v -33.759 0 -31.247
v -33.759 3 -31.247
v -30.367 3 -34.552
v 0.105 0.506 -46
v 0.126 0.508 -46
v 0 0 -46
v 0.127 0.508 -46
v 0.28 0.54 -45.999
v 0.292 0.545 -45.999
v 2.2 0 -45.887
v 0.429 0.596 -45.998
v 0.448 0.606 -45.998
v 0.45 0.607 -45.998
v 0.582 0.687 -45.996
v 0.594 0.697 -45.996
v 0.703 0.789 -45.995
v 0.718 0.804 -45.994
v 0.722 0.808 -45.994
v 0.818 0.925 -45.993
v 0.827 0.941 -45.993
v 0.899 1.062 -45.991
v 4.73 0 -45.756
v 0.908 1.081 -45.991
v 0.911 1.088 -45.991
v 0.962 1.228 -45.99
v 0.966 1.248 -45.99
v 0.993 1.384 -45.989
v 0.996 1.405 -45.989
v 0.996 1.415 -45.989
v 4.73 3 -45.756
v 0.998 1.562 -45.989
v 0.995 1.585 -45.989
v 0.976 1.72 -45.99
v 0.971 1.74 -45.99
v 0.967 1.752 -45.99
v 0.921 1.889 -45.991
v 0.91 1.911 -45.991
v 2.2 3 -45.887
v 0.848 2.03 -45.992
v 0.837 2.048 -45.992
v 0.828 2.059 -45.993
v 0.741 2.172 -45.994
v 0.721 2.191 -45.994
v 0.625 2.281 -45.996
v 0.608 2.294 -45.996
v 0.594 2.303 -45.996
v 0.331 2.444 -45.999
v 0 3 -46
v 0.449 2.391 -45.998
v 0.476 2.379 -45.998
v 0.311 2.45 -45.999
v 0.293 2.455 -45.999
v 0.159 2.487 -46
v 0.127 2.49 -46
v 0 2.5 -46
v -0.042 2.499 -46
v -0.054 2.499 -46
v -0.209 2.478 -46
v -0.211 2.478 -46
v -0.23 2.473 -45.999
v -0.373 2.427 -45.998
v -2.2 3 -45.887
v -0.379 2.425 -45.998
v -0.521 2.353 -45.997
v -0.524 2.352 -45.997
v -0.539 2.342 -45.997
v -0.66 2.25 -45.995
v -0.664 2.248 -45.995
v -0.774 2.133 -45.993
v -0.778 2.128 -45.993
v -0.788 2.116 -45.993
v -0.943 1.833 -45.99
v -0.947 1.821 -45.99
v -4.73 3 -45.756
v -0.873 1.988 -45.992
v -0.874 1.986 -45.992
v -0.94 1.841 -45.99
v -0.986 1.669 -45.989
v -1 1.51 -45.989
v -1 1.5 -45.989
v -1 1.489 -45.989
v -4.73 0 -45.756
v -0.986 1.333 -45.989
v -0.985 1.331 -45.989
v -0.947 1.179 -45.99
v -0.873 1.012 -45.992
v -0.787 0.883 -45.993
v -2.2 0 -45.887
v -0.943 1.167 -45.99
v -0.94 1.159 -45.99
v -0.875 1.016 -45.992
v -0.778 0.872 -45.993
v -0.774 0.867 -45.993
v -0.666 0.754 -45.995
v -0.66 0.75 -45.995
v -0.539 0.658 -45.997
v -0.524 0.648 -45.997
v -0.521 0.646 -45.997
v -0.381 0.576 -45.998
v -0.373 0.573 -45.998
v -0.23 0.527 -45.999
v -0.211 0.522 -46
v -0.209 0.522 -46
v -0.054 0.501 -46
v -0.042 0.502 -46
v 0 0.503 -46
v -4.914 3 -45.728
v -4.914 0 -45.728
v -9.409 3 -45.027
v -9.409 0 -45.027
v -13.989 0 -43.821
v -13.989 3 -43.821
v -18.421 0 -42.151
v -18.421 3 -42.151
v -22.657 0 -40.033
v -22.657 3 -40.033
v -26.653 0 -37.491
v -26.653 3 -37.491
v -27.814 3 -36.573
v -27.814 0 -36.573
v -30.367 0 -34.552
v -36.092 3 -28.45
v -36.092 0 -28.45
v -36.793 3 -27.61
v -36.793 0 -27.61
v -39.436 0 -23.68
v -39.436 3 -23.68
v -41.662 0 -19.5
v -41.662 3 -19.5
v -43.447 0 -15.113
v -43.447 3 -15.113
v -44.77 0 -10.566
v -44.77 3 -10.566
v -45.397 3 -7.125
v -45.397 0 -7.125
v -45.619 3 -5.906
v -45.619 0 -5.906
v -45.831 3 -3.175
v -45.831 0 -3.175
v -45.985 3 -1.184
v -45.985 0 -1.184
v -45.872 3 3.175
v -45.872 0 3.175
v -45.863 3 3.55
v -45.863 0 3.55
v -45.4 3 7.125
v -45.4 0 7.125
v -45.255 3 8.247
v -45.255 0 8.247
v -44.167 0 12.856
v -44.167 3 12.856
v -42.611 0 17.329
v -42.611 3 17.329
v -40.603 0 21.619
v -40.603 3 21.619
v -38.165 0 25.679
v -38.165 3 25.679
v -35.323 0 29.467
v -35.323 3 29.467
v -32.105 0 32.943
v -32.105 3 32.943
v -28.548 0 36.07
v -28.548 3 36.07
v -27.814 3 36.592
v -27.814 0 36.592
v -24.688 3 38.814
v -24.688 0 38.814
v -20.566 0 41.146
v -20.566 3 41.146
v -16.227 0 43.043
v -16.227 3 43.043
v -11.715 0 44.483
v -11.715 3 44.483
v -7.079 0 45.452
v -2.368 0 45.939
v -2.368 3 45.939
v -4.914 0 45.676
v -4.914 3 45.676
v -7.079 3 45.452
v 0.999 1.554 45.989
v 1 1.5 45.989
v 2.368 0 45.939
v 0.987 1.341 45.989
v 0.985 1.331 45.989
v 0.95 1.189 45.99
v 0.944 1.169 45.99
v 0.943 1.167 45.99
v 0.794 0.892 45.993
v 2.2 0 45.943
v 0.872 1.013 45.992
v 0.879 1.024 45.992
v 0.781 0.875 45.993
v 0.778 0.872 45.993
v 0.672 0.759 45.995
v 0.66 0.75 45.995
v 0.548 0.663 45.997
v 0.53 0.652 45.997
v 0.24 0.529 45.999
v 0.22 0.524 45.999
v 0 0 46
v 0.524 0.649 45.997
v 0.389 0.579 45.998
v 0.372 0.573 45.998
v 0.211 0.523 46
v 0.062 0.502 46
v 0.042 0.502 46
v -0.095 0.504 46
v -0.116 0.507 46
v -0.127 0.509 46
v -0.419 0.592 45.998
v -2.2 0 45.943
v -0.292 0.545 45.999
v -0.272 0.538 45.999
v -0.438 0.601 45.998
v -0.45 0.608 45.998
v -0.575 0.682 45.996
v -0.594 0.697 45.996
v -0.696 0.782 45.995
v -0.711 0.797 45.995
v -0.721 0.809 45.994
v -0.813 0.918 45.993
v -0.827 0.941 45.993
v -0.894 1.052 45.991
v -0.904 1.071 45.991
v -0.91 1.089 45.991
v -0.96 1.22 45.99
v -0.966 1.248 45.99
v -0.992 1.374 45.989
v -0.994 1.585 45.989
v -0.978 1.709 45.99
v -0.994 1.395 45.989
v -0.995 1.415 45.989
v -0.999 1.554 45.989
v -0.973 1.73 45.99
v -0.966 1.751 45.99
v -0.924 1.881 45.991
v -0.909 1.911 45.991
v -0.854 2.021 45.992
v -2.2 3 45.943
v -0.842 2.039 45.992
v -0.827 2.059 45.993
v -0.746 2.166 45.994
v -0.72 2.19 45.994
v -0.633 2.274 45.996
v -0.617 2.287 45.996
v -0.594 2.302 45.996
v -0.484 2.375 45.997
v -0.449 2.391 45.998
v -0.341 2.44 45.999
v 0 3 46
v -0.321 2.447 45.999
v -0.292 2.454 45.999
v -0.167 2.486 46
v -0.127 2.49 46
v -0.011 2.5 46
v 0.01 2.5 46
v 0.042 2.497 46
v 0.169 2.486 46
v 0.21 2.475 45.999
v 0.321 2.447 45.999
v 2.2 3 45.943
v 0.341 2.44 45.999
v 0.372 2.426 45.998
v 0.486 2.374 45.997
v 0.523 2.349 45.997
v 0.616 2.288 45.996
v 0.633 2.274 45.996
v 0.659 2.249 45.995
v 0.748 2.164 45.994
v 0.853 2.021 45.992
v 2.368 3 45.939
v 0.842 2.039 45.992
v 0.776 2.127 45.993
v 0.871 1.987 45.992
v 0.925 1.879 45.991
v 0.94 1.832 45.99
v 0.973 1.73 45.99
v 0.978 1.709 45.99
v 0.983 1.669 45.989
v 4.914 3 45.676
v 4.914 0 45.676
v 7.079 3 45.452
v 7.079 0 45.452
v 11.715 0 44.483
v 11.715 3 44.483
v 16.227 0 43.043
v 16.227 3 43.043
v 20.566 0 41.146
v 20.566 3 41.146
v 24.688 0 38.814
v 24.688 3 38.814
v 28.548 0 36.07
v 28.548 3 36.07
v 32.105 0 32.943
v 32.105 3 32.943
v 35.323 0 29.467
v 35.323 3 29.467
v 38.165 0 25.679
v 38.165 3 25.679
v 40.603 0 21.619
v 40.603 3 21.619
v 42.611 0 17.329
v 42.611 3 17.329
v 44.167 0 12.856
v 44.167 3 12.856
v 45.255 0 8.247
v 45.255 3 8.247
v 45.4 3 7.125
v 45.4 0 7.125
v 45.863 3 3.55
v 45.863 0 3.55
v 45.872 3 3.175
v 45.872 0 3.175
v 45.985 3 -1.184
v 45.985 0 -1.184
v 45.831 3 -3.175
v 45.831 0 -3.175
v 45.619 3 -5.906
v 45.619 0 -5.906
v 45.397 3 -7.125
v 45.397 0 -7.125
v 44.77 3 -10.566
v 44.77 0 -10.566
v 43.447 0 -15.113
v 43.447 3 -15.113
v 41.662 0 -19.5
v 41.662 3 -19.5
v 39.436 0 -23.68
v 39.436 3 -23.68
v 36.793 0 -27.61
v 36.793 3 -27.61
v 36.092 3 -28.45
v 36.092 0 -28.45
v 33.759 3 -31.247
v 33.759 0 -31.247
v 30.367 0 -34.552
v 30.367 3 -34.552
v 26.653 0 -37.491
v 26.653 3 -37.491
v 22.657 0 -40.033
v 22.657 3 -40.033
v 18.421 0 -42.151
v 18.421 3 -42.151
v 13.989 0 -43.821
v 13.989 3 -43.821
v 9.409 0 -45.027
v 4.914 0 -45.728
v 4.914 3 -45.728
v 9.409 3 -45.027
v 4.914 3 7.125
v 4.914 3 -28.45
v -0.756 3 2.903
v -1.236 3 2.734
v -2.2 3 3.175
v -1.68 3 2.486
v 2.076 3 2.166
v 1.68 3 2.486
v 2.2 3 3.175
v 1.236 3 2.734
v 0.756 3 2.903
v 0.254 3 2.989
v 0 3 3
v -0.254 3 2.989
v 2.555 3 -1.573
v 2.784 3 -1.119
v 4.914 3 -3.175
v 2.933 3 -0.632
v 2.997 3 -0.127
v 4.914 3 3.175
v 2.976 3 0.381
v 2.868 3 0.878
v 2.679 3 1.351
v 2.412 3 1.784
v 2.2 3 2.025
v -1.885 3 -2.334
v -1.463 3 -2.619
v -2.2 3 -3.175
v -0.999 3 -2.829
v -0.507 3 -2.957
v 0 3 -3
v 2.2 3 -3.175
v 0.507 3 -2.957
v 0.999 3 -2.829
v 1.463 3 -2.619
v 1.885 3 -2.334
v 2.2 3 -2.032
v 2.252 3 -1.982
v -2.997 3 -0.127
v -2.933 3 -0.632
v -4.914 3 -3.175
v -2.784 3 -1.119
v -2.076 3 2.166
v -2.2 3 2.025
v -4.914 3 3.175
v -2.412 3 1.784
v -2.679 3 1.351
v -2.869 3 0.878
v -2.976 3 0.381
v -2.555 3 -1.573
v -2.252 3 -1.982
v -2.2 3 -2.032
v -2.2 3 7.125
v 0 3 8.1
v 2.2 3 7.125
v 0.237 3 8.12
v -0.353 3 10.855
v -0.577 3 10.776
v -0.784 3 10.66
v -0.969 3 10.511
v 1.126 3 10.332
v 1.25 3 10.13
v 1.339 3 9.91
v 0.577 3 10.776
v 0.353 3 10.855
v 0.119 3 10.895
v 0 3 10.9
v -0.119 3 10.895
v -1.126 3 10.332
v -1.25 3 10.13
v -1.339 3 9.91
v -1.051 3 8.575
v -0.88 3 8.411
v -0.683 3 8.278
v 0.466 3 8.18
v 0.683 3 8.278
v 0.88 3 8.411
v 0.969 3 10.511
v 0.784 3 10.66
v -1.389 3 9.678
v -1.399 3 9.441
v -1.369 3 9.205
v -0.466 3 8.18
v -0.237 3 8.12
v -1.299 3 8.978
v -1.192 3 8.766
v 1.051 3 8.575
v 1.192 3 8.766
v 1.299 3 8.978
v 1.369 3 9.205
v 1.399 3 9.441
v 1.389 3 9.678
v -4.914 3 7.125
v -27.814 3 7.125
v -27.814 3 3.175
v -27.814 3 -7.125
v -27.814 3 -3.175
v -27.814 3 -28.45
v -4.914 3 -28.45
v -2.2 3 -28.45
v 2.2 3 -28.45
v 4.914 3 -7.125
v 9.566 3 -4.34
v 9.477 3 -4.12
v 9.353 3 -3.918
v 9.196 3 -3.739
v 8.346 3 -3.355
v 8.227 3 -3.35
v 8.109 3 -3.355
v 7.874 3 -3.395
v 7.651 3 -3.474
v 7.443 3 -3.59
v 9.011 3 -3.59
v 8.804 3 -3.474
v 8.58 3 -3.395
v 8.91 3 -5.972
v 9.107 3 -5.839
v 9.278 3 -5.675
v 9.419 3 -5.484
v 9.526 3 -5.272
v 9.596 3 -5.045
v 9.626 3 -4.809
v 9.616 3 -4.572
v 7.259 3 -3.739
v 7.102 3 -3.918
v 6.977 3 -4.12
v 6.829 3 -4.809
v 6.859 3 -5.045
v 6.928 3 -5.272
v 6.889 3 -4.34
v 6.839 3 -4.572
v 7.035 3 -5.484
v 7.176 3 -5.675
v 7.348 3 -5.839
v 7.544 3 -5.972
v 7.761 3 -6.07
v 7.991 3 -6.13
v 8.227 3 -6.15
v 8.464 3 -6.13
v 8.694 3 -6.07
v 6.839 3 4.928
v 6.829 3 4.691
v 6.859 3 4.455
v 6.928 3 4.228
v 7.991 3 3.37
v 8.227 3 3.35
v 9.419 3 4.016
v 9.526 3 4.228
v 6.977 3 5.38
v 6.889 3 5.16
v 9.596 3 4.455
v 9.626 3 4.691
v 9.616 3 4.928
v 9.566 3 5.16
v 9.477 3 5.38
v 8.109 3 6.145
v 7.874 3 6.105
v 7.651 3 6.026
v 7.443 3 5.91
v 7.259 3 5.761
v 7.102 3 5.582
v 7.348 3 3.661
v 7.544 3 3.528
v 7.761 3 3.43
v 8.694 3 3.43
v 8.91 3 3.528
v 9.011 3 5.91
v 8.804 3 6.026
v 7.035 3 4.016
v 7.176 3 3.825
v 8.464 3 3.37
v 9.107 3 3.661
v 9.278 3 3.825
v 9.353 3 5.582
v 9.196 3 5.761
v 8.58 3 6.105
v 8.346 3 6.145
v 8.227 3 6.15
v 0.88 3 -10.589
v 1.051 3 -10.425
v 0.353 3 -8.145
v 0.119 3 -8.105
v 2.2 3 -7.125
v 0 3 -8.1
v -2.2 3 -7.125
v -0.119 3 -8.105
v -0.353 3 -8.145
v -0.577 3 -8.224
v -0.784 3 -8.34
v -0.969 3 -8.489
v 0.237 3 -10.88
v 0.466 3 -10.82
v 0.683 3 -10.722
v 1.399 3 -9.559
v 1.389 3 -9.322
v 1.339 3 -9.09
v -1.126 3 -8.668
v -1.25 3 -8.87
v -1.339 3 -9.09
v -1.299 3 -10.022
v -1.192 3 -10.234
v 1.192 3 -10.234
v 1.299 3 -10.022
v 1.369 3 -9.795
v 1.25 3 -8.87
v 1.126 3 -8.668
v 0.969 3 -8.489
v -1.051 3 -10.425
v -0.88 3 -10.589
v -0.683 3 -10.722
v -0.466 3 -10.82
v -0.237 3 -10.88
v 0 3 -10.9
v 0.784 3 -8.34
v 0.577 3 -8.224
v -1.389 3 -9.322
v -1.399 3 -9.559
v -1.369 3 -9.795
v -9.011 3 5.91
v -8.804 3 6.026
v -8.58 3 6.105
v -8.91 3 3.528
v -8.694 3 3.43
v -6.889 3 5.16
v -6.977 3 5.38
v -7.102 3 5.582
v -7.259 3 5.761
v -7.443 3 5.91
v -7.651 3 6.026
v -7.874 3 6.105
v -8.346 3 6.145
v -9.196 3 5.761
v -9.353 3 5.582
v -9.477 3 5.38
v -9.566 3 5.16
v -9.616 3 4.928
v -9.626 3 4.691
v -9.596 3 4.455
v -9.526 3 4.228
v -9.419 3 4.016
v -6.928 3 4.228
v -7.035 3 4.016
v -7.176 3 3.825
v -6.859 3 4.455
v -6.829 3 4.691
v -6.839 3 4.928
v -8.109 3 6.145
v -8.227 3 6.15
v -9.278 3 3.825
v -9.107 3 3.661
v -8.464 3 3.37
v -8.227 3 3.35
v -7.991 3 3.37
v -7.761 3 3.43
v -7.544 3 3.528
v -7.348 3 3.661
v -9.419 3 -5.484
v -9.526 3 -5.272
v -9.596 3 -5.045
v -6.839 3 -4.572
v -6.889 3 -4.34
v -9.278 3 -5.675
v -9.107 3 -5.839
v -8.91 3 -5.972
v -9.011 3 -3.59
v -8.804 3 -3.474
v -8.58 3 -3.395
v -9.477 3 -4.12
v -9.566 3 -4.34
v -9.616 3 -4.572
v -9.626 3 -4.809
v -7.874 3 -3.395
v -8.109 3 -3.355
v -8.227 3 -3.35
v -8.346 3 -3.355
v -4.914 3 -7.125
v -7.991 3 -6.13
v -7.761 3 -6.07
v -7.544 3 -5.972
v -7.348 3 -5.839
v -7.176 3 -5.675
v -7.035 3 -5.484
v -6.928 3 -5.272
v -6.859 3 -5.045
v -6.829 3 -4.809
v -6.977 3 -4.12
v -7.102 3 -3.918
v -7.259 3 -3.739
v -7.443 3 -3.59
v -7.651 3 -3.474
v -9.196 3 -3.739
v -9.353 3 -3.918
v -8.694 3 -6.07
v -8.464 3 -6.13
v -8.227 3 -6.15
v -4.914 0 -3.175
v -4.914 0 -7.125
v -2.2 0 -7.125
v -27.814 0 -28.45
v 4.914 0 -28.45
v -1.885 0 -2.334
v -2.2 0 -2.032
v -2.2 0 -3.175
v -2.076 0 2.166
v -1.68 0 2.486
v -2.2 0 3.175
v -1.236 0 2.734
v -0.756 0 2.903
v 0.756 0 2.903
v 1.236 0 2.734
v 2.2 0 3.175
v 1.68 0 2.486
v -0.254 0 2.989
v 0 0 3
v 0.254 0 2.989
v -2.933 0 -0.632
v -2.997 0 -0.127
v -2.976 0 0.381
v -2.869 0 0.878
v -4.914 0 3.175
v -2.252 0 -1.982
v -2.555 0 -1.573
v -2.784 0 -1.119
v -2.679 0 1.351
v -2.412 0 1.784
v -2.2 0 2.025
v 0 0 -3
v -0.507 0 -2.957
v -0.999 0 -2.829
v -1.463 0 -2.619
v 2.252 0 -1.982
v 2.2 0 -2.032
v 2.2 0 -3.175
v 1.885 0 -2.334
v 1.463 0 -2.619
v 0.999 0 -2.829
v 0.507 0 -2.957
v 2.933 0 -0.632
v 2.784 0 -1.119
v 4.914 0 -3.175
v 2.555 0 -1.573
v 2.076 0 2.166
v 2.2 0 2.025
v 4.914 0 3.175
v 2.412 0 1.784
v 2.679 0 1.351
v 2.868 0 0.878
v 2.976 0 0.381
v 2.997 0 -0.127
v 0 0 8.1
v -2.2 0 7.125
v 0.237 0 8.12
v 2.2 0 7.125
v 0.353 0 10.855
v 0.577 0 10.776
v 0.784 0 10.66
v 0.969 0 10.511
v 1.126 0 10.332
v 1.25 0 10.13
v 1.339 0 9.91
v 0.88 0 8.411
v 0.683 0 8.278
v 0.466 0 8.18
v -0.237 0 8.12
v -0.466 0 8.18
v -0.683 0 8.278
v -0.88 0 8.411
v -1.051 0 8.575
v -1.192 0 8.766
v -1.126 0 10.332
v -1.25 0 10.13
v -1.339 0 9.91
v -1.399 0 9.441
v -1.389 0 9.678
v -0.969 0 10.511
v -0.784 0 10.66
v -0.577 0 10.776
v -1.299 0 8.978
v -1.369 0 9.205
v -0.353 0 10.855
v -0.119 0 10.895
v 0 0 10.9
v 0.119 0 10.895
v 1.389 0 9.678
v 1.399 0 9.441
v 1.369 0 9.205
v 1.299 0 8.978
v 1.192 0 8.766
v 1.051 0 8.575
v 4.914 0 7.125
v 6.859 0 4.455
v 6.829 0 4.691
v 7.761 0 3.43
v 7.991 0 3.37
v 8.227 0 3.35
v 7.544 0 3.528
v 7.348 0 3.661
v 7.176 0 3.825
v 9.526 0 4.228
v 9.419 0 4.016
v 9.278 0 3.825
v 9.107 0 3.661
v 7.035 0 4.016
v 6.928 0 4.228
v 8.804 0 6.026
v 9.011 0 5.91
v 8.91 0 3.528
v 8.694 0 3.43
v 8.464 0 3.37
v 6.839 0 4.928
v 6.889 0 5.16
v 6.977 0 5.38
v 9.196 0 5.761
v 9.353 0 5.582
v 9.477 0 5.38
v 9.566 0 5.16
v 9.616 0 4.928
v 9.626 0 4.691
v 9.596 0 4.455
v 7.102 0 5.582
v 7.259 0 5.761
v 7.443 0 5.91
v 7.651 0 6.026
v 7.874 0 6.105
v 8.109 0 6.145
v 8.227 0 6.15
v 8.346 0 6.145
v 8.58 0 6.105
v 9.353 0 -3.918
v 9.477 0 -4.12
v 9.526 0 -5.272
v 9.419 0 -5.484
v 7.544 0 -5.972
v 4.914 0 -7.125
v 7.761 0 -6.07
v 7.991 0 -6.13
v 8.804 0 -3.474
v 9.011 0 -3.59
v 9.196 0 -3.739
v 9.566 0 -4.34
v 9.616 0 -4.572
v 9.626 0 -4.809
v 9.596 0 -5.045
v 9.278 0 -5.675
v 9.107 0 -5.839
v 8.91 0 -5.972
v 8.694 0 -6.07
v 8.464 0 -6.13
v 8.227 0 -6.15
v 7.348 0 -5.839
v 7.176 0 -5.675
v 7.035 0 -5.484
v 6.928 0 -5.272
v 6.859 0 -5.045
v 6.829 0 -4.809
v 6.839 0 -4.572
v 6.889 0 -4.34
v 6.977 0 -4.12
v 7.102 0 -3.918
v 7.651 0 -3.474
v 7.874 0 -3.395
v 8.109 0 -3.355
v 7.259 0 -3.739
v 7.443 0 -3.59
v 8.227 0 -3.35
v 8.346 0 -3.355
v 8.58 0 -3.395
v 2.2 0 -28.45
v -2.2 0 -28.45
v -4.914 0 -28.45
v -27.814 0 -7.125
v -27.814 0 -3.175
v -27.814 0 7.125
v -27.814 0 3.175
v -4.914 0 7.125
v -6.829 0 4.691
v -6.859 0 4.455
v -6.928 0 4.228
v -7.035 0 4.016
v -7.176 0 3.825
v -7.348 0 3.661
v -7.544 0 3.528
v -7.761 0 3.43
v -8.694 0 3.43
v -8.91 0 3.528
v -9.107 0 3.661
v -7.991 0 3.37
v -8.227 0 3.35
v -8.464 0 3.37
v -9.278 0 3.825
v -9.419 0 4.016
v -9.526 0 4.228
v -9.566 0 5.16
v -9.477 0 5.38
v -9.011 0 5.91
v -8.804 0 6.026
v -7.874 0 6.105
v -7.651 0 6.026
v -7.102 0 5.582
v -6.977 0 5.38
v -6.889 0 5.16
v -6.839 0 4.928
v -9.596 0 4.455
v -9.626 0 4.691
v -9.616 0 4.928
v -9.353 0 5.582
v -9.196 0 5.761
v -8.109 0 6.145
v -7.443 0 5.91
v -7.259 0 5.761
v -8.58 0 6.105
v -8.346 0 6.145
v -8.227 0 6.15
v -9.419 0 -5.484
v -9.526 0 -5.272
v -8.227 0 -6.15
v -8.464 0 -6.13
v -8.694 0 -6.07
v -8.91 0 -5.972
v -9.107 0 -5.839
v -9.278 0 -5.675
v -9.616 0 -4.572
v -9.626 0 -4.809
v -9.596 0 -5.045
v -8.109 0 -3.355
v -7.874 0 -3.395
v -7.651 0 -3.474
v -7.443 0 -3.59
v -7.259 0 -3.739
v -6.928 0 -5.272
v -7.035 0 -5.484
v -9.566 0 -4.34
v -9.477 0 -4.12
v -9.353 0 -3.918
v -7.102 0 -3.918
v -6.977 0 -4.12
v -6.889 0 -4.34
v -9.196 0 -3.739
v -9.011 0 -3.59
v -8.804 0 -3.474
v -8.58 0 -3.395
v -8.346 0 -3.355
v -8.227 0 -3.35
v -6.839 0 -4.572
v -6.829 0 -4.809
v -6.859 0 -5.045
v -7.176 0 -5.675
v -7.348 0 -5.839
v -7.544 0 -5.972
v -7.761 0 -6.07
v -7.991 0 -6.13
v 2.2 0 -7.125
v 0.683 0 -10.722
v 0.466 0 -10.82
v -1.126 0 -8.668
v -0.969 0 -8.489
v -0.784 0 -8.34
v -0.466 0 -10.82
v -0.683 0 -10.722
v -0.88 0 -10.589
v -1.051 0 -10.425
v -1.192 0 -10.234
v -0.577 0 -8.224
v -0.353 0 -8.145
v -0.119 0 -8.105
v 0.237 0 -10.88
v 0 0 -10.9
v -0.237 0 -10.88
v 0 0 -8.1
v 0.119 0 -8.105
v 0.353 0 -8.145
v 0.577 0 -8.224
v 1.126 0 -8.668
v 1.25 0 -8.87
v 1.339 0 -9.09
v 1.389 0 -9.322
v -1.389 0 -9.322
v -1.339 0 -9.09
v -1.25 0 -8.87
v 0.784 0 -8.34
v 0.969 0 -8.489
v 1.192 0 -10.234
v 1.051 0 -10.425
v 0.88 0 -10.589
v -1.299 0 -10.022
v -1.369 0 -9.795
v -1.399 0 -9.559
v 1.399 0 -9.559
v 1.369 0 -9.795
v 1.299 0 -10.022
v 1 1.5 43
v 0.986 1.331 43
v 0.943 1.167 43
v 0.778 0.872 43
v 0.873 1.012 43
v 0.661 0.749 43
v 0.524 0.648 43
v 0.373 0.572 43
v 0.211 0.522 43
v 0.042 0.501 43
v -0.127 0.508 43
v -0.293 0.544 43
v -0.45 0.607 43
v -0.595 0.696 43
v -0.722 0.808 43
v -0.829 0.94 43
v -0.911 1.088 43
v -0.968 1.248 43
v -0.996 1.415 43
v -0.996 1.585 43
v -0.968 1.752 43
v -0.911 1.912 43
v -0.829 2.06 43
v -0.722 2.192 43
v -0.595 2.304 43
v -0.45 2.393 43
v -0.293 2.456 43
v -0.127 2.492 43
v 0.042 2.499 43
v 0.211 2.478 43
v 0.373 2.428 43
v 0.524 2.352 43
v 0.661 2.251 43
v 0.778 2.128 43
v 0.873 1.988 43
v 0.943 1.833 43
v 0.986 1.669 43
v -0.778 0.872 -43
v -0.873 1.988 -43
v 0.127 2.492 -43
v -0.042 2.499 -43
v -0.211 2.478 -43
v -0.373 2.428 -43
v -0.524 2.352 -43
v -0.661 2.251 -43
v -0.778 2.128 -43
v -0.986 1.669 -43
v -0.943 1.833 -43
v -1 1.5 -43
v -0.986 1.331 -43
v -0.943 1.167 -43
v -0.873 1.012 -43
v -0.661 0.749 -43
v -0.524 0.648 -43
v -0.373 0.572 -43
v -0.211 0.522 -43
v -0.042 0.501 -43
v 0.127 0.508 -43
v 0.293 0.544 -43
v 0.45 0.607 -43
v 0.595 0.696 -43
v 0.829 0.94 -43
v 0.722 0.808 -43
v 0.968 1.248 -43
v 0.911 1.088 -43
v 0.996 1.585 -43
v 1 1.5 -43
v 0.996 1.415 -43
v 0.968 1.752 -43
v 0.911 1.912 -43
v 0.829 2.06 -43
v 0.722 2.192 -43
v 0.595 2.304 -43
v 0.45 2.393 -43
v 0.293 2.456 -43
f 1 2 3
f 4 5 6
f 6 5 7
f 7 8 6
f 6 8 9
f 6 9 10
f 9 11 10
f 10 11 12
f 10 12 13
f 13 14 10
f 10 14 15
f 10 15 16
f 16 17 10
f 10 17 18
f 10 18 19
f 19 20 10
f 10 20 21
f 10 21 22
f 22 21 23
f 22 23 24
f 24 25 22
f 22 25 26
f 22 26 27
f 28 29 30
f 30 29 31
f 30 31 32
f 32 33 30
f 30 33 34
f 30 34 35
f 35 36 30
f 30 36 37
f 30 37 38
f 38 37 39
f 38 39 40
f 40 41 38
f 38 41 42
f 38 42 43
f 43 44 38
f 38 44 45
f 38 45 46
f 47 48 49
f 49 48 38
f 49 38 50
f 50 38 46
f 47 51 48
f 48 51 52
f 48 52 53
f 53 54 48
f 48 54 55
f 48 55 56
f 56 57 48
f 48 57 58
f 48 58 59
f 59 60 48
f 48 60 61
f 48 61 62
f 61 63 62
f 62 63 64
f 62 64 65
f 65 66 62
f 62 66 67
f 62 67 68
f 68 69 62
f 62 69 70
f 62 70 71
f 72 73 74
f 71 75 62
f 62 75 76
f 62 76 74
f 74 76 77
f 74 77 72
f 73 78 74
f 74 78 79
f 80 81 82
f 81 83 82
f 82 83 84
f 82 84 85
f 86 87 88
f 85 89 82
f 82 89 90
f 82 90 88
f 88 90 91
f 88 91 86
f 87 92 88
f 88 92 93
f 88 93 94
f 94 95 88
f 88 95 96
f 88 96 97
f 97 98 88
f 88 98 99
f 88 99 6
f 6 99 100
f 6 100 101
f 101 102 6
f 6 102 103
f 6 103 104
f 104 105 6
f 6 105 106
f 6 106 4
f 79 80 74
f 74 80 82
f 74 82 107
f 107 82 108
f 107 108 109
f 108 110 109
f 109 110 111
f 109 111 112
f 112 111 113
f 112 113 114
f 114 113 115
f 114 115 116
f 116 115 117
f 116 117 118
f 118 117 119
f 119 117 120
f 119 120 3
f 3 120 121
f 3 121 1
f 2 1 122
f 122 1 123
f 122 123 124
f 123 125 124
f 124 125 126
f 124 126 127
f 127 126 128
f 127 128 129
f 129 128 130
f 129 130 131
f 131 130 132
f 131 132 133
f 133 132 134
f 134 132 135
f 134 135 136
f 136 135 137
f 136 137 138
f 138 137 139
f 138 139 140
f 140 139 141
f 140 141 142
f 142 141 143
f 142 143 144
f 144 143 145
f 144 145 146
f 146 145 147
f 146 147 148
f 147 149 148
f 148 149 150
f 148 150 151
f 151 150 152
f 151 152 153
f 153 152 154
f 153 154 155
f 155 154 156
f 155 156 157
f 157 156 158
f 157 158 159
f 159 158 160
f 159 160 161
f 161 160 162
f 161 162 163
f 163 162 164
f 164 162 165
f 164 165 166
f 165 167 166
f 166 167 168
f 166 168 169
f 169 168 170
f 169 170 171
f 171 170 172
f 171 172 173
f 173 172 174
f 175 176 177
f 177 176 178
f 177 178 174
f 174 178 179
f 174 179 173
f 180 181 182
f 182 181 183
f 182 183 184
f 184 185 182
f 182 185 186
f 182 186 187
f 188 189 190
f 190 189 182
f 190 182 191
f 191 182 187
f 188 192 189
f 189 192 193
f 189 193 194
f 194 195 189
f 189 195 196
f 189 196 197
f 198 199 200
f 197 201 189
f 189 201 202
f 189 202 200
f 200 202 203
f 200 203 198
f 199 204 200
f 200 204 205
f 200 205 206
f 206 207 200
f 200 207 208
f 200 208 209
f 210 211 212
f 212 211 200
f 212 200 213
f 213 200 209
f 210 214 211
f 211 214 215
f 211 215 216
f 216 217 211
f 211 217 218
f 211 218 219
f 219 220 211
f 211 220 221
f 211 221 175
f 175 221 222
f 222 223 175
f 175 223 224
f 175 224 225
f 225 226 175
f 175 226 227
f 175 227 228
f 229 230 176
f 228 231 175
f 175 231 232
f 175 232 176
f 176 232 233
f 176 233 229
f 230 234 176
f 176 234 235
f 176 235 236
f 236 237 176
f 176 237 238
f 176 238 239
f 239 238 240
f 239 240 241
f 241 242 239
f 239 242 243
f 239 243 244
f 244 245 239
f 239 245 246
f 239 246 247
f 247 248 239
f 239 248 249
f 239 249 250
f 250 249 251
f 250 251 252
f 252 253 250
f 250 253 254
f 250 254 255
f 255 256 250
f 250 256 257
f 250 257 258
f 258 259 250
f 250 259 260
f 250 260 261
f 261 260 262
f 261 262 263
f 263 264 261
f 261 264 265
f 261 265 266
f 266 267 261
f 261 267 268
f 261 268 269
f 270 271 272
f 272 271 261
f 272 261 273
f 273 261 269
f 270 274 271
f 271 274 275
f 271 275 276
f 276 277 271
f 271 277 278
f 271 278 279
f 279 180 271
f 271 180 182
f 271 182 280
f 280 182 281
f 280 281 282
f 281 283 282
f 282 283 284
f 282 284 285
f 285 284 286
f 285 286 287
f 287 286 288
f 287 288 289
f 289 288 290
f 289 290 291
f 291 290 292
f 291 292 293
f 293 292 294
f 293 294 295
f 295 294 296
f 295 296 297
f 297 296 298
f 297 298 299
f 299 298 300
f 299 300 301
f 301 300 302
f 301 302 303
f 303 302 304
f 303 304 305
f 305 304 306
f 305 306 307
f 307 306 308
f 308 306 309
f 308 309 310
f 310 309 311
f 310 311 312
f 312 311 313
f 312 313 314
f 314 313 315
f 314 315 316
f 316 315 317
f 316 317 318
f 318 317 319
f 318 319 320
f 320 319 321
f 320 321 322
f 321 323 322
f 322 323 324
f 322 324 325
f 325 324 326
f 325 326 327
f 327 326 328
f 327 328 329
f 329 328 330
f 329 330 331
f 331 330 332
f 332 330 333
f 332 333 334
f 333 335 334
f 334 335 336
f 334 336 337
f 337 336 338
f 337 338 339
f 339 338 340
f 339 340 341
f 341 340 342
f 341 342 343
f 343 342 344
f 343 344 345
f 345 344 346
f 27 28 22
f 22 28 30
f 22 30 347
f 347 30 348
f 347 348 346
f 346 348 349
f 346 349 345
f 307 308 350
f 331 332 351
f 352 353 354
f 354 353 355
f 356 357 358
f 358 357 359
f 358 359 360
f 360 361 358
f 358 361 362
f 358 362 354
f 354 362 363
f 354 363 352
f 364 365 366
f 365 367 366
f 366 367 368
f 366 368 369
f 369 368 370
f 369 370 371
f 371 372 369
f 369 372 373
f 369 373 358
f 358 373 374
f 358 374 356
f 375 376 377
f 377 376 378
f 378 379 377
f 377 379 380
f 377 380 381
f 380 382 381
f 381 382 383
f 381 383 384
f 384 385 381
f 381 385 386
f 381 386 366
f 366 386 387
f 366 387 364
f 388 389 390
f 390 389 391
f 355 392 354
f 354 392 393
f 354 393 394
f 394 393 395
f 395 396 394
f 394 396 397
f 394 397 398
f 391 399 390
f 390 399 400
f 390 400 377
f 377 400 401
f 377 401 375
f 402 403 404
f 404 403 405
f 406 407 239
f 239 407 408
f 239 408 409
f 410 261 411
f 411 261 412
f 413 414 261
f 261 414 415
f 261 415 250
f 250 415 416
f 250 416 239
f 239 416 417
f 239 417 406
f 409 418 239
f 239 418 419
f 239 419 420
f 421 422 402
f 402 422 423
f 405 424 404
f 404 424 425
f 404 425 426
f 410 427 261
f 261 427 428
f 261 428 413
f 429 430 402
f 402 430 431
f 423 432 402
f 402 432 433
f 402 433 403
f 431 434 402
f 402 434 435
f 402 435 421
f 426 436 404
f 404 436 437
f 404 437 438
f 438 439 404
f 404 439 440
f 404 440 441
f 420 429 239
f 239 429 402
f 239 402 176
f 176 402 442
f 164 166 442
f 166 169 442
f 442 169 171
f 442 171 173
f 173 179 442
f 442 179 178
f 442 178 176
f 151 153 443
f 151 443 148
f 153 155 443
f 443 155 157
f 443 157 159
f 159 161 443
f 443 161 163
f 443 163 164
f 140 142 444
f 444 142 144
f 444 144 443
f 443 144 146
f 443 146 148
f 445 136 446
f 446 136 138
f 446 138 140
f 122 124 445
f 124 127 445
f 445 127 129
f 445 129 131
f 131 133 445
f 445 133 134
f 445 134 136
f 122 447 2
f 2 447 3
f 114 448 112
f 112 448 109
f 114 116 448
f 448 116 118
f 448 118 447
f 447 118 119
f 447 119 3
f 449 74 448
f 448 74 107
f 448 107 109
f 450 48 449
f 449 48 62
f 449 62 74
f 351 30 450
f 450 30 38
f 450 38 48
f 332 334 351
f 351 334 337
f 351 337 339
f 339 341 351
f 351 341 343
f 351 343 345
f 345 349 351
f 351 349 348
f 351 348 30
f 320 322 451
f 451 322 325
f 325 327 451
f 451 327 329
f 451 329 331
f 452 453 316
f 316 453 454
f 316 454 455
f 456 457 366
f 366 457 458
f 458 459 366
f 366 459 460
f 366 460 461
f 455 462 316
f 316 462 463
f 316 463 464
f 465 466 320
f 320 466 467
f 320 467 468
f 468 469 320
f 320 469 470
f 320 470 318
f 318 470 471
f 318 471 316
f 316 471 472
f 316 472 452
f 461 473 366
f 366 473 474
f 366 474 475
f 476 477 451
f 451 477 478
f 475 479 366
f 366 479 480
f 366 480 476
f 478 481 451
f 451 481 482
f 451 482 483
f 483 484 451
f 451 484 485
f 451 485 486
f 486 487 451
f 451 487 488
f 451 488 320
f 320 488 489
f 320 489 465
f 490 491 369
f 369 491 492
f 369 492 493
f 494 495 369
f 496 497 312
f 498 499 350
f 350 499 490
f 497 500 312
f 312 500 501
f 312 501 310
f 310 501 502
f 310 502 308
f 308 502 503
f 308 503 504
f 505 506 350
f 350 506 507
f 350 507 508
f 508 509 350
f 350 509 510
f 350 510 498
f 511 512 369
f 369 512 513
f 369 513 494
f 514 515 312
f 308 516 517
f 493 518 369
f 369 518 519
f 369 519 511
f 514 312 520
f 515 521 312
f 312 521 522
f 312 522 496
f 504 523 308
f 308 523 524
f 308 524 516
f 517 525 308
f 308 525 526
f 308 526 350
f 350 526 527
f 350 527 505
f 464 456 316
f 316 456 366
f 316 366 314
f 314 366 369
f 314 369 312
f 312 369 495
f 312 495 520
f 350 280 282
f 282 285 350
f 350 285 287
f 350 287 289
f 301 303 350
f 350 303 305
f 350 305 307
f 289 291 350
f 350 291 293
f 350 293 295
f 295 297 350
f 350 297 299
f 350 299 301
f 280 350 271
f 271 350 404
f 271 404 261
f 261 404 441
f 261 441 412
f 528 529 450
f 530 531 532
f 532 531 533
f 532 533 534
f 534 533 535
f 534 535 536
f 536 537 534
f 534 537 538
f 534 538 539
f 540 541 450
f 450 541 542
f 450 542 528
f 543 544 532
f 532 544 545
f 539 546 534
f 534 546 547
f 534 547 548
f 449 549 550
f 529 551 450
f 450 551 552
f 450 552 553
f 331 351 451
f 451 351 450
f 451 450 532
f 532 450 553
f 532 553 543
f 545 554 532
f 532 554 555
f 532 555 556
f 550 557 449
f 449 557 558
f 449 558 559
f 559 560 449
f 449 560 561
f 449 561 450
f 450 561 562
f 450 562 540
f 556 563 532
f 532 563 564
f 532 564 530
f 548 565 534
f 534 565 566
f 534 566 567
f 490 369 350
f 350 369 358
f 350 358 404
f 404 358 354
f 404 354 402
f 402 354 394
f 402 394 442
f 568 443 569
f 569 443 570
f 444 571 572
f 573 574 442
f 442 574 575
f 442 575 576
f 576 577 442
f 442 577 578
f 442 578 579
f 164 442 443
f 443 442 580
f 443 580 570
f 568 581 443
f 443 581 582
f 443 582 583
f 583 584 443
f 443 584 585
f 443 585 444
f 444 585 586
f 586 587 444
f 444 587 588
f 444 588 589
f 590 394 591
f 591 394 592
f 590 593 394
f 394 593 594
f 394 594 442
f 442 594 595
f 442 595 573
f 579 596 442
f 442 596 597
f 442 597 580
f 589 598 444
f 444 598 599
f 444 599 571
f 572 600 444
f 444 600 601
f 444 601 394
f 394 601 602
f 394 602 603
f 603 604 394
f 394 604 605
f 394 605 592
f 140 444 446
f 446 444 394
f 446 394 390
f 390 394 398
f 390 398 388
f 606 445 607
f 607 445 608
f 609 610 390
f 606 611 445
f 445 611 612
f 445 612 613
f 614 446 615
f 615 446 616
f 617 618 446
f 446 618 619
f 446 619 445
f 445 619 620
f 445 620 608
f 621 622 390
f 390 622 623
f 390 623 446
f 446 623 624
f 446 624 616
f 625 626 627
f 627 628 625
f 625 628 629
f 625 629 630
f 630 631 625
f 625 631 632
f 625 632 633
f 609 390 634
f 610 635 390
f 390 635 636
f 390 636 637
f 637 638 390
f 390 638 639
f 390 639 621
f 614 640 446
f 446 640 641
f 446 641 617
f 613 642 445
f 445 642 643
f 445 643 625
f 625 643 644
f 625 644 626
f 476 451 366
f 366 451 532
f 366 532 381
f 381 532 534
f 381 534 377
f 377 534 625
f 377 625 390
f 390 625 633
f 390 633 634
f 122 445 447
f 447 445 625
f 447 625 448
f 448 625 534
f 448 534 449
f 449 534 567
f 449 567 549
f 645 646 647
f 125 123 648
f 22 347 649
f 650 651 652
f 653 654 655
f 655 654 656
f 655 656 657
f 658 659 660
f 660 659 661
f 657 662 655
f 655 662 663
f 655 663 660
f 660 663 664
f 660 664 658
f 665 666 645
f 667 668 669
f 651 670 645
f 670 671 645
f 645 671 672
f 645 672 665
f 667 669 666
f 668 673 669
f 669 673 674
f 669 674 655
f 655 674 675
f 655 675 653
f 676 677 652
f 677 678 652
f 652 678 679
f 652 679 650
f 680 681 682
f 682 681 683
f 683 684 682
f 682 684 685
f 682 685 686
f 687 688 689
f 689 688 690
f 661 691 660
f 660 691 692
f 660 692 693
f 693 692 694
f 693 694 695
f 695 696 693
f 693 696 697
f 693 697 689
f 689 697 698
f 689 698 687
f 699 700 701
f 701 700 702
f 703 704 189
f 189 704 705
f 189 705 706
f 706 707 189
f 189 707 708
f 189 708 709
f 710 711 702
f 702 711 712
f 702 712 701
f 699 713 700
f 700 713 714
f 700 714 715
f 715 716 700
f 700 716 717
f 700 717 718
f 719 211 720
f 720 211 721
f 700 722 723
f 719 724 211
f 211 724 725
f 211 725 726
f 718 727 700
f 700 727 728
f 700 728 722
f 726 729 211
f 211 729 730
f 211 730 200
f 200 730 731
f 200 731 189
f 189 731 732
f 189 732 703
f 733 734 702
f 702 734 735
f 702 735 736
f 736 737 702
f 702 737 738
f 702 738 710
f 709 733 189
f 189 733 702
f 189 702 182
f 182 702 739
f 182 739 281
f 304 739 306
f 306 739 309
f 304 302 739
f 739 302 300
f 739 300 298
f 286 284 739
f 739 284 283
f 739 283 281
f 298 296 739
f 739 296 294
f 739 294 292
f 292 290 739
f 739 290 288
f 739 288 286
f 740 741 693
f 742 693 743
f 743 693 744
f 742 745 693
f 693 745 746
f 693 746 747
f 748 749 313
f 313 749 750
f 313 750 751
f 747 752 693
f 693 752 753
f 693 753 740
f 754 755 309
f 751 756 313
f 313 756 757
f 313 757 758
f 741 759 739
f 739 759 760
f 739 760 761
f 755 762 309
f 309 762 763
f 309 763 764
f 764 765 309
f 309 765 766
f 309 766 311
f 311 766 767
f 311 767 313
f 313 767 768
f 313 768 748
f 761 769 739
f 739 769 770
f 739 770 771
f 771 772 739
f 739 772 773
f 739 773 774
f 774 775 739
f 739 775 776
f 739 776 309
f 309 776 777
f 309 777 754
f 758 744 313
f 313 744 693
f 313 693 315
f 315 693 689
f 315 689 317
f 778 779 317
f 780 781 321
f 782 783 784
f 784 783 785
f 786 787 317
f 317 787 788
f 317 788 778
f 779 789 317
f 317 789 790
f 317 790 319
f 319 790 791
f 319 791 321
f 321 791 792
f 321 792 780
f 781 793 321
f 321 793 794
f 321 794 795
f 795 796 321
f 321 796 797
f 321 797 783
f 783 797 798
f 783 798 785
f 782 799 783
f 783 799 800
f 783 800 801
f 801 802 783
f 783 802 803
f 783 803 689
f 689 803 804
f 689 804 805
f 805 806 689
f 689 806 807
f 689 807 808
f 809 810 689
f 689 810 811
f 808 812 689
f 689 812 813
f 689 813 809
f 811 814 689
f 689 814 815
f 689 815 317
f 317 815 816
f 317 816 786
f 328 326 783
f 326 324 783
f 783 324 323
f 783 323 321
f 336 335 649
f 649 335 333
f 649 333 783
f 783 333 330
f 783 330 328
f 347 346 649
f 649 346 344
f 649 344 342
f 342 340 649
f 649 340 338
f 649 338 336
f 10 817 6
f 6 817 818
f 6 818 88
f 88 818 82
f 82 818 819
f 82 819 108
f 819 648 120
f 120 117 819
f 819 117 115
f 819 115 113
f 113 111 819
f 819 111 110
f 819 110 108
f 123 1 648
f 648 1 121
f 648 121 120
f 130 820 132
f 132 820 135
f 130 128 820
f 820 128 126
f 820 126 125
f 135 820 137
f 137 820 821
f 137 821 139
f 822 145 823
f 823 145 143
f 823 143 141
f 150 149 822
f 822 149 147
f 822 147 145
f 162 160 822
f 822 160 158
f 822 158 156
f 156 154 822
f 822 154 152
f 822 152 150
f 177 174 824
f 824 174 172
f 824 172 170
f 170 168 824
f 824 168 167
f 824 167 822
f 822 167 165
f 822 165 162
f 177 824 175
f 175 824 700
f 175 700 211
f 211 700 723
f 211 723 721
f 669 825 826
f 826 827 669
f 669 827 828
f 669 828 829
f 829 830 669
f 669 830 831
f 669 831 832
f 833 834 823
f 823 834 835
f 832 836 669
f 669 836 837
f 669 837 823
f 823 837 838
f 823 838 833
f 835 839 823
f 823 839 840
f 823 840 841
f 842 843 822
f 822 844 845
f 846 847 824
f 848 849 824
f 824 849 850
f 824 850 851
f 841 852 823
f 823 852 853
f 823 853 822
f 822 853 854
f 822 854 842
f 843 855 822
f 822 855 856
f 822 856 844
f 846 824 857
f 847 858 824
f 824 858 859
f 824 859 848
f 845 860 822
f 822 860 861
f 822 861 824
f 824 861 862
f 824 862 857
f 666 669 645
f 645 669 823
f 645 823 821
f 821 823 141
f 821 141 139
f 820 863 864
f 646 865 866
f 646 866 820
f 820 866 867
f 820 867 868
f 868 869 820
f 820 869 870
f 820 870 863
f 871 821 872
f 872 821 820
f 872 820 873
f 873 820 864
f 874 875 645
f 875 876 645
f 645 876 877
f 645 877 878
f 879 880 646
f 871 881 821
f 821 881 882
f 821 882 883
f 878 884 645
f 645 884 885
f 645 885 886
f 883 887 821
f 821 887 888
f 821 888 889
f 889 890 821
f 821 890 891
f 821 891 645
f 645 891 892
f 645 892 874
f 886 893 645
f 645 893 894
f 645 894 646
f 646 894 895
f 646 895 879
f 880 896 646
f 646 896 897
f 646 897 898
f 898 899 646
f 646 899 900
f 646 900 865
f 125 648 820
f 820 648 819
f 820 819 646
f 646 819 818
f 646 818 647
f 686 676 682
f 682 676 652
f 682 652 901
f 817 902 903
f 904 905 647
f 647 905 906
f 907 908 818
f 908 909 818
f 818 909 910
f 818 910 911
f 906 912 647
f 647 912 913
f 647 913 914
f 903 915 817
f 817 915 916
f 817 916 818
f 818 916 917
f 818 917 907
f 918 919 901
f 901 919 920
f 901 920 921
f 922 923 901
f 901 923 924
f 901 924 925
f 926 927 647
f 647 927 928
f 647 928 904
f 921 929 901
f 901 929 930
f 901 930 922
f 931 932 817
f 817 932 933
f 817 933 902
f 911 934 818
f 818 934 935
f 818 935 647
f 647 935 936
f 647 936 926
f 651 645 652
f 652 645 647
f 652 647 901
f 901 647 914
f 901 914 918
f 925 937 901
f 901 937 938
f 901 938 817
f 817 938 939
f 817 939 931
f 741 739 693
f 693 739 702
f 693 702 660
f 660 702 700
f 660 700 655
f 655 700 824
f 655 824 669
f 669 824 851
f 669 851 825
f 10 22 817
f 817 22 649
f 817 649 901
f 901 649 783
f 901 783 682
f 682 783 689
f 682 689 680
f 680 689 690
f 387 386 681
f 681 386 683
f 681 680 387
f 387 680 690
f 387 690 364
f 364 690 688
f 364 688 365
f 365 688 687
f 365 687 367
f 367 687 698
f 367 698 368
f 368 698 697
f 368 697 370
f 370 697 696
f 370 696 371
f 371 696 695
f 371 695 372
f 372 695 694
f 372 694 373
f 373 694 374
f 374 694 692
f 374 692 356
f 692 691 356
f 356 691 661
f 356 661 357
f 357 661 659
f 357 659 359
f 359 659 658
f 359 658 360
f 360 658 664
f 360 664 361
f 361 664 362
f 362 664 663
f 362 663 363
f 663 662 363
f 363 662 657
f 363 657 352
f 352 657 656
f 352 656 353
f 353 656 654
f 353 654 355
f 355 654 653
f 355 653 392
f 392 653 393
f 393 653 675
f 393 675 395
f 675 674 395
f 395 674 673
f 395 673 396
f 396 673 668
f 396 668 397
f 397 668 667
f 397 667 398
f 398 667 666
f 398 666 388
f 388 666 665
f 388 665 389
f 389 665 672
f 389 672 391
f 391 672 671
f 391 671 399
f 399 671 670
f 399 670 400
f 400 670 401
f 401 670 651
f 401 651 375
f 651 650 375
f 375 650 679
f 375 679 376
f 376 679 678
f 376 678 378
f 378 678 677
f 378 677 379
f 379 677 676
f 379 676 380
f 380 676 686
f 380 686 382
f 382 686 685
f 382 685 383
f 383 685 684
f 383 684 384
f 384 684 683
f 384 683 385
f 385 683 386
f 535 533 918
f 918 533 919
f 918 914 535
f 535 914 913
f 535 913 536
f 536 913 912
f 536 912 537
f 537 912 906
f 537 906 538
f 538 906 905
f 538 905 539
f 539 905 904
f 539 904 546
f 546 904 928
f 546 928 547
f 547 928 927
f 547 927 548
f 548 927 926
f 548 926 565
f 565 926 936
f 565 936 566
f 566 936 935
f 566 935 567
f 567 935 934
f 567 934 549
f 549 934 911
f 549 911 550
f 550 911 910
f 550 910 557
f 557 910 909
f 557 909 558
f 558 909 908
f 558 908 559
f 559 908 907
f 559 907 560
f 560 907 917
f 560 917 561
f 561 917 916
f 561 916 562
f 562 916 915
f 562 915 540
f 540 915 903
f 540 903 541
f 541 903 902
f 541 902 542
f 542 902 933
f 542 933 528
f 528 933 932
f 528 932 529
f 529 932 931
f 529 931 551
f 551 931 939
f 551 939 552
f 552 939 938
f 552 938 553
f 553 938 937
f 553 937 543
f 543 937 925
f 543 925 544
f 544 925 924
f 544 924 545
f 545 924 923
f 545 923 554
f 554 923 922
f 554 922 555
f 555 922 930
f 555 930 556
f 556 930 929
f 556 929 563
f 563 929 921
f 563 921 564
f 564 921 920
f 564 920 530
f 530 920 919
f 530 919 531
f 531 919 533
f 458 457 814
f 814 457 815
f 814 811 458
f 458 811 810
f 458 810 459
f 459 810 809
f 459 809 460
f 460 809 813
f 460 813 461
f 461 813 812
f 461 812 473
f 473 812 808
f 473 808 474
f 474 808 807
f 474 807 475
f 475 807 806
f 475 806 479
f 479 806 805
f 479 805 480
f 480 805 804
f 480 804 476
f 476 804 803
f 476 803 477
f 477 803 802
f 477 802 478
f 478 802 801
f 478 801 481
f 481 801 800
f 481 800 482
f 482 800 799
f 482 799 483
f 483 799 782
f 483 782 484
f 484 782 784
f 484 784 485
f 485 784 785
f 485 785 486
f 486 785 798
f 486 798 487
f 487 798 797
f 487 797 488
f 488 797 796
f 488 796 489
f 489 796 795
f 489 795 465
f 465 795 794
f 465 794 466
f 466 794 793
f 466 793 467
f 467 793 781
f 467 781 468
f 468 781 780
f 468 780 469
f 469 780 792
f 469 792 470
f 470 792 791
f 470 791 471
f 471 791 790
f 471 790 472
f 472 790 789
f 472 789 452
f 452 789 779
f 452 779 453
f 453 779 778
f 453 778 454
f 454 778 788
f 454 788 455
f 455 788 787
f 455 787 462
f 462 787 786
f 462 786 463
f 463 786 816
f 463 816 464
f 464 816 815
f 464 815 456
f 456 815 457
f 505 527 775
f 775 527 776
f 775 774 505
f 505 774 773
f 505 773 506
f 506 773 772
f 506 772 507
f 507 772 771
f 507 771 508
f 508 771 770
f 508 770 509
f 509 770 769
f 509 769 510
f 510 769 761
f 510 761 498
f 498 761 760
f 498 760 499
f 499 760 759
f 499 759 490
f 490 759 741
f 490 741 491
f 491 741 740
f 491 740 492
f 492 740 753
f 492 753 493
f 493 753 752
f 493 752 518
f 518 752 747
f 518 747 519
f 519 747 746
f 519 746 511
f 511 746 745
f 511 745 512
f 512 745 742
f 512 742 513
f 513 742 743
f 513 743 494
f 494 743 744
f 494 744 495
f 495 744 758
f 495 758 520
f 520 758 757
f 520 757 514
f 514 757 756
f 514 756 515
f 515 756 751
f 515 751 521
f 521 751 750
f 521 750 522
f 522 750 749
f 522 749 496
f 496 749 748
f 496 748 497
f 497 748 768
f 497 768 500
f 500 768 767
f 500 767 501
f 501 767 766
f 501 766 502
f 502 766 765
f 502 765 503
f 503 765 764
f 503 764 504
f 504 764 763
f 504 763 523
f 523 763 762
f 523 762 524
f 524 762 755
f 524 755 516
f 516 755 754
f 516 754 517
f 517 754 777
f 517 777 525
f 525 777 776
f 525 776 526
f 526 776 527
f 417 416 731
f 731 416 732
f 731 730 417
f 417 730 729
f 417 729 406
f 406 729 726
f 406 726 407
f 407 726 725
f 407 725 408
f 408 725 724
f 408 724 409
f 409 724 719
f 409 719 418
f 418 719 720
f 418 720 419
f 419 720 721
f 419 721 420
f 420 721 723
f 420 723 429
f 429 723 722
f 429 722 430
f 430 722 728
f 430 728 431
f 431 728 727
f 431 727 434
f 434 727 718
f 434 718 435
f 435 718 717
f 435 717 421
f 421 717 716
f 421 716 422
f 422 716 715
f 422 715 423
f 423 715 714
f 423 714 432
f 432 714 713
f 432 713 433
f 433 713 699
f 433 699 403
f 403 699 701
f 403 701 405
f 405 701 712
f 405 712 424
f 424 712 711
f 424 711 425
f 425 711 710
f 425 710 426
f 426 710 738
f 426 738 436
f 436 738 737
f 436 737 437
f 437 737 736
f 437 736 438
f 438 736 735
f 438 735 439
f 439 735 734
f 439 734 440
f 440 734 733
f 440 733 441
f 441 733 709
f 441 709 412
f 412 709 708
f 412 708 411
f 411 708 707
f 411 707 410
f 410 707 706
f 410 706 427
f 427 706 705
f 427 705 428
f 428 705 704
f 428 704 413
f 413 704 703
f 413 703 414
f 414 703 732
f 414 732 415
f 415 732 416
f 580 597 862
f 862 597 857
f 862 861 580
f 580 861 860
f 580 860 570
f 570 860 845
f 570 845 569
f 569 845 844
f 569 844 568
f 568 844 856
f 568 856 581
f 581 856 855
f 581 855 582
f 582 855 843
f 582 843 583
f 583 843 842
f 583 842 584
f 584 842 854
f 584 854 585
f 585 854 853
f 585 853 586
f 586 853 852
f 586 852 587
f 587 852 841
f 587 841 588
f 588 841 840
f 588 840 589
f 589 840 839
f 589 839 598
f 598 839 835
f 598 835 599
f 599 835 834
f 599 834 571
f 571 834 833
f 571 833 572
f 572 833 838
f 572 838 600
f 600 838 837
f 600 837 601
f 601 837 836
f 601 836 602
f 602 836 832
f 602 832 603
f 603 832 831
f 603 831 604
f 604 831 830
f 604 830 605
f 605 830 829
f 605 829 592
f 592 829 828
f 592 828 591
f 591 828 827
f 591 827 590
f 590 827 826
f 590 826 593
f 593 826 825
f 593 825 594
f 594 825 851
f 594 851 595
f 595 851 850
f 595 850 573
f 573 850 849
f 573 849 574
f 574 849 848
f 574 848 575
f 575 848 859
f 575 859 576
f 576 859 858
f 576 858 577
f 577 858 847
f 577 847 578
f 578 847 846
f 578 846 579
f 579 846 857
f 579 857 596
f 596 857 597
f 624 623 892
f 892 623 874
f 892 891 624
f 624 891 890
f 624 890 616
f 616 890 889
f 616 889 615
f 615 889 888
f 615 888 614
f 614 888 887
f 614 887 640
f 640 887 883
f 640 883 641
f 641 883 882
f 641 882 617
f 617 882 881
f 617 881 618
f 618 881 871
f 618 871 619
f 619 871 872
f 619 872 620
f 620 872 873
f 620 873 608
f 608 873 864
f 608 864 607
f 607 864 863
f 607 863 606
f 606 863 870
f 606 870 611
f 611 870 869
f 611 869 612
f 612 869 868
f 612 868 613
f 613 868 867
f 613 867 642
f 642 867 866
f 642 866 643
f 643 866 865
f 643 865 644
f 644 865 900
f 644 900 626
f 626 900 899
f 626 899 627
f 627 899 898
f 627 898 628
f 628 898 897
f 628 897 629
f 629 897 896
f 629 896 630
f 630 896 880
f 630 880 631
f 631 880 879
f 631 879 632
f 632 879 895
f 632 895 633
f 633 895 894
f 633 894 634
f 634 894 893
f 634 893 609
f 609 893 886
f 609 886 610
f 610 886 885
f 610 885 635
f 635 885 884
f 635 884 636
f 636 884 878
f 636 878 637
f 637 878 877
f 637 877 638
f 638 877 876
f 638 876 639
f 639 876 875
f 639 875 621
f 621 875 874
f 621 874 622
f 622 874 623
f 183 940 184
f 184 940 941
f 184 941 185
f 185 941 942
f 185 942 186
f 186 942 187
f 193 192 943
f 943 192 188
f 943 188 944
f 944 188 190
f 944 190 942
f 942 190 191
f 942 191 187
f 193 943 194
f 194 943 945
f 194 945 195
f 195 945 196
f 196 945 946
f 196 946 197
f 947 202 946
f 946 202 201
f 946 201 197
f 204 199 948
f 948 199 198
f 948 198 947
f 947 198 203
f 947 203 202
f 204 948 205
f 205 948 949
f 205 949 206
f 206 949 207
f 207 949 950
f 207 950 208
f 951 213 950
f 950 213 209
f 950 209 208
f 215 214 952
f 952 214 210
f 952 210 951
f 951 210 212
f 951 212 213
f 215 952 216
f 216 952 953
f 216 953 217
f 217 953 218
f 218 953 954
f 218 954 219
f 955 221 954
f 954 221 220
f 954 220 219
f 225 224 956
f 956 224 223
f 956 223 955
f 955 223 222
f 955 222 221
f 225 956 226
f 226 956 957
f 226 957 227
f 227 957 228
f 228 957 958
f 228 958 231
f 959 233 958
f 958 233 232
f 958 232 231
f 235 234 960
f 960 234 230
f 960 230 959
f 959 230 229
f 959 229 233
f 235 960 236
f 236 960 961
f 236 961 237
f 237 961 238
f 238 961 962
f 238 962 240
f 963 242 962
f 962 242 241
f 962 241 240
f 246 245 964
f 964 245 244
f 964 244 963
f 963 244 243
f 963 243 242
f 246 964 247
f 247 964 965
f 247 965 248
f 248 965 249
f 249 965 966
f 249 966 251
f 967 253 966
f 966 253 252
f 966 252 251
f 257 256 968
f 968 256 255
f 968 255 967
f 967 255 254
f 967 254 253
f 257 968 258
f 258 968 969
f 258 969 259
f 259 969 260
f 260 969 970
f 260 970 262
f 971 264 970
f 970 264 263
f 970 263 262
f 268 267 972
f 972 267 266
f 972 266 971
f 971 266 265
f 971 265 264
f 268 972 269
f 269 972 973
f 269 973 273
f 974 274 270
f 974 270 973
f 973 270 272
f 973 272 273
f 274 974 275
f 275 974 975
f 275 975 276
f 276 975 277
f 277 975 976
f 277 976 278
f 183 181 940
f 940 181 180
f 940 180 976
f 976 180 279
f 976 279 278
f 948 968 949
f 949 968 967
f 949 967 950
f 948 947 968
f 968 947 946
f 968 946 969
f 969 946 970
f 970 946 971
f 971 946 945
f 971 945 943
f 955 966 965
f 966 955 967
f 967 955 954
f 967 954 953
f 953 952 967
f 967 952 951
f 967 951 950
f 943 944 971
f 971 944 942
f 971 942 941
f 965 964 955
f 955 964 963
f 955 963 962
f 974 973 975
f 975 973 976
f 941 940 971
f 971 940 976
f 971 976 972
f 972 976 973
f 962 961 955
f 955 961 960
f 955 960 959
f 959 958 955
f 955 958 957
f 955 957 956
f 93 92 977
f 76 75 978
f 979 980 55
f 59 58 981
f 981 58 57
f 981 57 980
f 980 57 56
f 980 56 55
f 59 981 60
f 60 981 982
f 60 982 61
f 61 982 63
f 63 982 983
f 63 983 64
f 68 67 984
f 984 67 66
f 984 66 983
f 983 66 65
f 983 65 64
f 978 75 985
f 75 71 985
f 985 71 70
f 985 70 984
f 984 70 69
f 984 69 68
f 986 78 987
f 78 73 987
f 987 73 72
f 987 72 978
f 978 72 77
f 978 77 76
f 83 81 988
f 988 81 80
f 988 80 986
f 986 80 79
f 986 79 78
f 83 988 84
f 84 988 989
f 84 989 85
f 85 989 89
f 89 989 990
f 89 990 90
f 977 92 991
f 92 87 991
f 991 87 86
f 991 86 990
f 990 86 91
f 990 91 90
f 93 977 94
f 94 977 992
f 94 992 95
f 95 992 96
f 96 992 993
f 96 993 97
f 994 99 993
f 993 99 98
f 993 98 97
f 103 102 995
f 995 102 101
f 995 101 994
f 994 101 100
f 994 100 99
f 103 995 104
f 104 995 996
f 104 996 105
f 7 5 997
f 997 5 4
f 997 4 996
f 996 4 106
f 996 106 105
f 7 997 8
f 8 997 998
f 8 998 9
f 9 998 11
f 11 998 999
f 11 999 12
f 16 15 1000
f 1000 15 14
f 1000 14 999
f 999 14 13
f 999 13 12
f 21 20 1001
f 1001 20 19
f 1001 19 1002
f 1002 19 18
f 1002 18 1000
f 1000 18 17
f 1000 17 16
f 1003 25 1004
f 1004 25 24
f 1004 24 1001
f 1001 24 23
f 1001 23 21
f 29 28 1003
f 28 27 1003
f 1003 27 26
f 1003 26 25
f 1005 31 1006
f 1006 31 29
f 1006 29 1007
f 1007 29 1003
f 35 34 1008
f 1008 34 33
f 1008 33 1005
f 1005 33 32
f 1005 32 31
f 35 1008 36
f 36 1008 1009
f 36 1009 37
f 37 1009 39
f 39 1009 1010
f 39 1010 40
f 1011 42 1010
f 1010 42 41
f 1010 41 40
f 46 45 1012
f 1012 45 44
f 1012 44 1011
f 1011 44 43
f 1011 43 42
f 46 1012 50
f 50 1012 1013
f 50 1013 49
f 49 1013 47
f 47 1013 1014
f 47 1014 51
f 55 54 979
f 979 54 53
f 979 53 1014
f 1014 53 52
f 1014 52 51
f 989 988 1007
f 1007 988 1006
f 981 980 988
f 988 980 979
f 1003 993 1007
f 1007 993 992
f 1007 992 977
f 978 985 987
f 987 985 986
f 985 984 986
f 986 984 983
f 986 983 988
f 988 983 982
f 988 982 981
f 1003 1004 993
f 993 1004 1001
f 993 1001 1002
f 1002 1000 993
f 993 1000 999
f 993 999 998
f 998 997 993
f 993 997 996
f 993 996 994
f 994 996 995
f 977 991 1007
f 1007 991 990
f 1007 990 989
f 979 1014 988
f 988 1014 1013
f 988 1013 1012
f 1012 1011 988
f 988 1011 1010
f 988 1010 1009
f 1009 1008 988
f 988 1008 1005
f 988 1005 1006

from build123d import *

# Parameters (mm, degrees)
SKETCH1_R           = 46
SKETCH1_R_2         = 3
SKETCH1_R_3         = 1.4
BOSS_EXTRUDE1_DEPTH = 3
SKETCH5_R           = 1
CUT_EXTRUDE1_DEPTH  = 3
SKETCH6_R           = 1
CUT_EXTRUDE2_DEPTH  = 3


with BuildPart() as part:
    # Sketch1 → Boss-Extrude1 (new body)
    with BuildSketch(Plane(origin=(0, 0, 0), x_dir=(1, 0, 0), z_dir=(0, 1, 0))):
        Circle(SKETCH1_R)
        Circle(SKETCH1_R_2, mode=Mode.SUBTRACT)
        with Locations((0, 9.5)):
            Circle(SKETCH1_R_3, mode=Mode.SUBTRACT)
        with Locations((8.227241336, 4.75)):
            Circle(SKETCH1_R_3, mode=Mode.SUBTRACT)
        with Locations((8.227241336, -4.75)):
            Circle(SKETCH1_R_3, mode=Mode.SUBTRACT)
        with Locations((0, -9.5)):
            Circle(SKETCH1_R_3, mode=Mode.SUBTRACT)
        with Locations((-8.227241336, -4.75)):
            Circle(SKETCH1_R_3, mode=Mode.SUBTRACT)
        with Locations((-8.227241336, 4.75)):
            Circle(SKETCH1_R_3, mode=Mode.SUBTRACT)
    extrude(amount=BOSS_EXTRUDE1_DEPTH)

    # Sketch5 → Cut-Extrude1 (cut)
    with BuildSketch(Plane.XY.offset(46)):
        with Locations((0, 1.5)):
            Circle(SKETCH5_R)
    extrude(amount=-CUT_EXTRUDE1_DEPTH, mode=Mode.SUBTRACT)

    # Sketch6 → Cut-Extrude2 (cut)
    with BuildSketch(Plane.XY.offset(-46)):
        with Locations((0, 1.5)):
            Circle(SKETCH6_R)
    extrude(amount=CUT_EXTRUDE2_DEPTH, mode=Mode.SUBTRACT)


solid = part.part
